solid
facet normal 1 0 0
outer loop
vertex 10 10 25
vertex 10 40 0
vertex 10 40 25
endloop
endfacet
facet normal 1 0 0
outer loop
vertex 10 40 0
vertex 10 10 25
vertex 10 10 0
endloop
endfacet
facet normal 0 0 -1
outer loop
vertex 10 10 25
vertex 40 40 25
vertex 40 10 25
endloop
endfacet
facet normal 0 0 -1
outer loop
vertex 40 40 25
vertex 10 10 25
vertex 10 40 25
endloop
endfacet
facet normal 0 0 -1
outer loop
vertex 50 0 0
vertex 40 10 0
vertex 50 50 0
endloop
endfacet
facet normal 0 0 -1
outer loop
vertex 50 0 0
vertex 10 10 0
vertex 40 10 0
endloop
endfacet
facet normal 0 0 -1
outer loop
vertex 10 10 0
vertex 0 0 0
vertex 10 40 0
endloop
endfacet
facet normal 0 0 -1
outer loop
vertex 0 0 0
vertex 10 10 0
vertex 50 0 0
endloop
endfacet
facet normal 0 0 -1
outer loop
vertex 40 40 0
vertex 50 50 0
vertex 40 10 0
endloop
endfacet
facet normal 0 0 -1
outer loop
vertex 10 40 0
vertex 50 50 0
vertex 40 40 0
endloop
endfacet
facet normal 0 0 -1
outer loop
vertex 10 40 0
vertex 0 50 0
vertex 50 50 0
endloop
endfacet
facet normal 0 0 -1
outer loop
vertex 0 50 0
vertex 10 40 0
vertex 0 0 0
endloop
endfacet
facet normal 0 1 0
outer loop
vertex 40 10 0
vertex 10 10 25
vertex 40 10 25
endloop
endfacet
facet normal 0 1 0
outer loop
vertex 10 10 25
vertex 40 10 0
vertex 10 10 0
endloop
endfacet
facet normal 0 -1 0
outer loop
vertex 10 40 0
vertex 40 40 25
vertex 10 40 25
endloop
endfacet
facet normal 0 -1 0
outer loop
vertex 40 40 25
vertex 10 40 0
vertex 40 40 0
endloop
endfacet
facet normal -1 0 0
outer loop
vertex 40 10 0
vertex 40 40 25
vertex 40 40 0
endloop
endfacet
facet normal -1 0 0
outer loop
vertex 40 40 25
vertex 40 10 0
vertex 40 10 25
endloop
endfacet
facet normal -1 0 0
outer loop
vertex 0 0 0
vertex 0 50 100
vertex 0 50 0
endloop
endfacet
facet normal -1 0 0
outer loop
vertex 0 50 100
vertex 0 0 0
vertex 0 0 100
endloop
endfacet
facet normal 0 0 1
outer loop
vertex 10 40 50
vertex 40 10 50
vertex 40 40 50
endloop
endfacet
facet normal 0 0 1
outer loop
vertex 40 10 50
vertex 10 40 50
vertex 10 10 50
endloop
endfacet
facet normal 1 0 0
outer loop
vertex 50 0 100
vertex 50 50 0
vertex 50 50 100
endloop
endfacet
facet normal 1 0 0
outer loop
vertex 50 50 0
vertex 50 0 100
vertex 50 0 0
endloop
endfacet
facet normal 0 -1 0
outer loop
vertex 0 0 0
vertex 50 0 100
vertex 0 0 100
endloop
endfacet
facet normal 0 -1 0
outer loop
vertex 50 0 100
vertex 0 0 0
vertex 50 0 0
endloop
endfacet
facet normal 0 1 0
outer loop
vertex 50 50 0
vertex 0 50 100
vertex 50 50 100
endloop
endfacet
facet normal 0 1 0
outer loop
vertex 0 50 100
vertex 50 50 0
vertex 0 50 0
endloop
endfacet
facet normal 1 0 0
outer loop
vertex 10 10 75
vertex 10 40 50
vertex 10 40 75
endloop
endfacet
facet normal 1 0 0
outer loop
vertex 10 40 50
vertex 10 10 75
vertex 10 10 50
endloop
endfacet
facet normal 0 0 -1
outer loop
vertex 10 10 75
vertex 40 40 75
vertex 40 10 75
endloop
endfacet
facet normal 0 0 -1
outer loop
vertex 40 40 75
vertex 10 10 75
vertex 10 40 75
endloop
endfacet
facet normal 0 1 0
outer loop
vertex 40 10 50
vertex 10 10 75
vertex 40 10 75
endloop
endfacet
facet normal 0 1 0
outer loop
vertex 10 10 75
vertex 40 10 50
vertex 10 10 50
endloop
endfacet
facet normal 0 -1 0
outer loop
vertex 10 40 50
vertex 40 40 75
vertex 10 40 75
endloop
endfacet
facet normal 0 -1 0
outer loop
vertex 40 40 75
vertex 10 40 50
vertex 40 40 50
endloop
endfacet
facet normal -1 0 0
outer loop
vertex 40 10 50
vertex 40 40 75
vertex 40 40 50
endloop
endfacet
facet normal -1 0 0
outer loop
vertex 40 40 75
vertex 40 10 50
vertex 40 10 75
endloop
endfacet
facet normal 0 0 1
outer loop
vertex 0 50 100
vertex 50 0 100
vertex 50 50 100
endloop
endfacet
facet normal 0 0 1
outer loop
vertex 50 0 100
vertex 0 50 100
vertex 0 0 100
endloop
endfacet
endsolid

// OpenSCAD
// Parameters
cube_size = 50;          // Size of the cube
cutout_size = 15;        // Size of the hollow square cutouts
cutout_spacing = 10;     // Spacing between cutouts
cutout_depth = cube_size / 2; // Depth of the hollow cutouts

module hollow_cube() {
    difference() {
        // Main solid cube
        cube([cube_size, cube_size, cube_size]);

        // Hollow cutouts
        for (x = [cutout_spacing, cube_size - cutout_spacing - cutout_size]) {
            for (y = [cutout_spacing, cube_size - cutout_spacing - cutout_size]) {
                translate([x, y, 0]) {
                    cube([cutout_size, cutout_size, cutout_depth]);
                }
            }
        }
    }
}

// Assembly
module flexible_coupling() {
    union() {
        // Top hollow cube
        translate([0, 0, cube_size]) {
            hollow_cube();
        }
        
        // Base hollow cube
        hollow_cube();
    }
}

// Render the flexible coupling
flexible_coupling();
